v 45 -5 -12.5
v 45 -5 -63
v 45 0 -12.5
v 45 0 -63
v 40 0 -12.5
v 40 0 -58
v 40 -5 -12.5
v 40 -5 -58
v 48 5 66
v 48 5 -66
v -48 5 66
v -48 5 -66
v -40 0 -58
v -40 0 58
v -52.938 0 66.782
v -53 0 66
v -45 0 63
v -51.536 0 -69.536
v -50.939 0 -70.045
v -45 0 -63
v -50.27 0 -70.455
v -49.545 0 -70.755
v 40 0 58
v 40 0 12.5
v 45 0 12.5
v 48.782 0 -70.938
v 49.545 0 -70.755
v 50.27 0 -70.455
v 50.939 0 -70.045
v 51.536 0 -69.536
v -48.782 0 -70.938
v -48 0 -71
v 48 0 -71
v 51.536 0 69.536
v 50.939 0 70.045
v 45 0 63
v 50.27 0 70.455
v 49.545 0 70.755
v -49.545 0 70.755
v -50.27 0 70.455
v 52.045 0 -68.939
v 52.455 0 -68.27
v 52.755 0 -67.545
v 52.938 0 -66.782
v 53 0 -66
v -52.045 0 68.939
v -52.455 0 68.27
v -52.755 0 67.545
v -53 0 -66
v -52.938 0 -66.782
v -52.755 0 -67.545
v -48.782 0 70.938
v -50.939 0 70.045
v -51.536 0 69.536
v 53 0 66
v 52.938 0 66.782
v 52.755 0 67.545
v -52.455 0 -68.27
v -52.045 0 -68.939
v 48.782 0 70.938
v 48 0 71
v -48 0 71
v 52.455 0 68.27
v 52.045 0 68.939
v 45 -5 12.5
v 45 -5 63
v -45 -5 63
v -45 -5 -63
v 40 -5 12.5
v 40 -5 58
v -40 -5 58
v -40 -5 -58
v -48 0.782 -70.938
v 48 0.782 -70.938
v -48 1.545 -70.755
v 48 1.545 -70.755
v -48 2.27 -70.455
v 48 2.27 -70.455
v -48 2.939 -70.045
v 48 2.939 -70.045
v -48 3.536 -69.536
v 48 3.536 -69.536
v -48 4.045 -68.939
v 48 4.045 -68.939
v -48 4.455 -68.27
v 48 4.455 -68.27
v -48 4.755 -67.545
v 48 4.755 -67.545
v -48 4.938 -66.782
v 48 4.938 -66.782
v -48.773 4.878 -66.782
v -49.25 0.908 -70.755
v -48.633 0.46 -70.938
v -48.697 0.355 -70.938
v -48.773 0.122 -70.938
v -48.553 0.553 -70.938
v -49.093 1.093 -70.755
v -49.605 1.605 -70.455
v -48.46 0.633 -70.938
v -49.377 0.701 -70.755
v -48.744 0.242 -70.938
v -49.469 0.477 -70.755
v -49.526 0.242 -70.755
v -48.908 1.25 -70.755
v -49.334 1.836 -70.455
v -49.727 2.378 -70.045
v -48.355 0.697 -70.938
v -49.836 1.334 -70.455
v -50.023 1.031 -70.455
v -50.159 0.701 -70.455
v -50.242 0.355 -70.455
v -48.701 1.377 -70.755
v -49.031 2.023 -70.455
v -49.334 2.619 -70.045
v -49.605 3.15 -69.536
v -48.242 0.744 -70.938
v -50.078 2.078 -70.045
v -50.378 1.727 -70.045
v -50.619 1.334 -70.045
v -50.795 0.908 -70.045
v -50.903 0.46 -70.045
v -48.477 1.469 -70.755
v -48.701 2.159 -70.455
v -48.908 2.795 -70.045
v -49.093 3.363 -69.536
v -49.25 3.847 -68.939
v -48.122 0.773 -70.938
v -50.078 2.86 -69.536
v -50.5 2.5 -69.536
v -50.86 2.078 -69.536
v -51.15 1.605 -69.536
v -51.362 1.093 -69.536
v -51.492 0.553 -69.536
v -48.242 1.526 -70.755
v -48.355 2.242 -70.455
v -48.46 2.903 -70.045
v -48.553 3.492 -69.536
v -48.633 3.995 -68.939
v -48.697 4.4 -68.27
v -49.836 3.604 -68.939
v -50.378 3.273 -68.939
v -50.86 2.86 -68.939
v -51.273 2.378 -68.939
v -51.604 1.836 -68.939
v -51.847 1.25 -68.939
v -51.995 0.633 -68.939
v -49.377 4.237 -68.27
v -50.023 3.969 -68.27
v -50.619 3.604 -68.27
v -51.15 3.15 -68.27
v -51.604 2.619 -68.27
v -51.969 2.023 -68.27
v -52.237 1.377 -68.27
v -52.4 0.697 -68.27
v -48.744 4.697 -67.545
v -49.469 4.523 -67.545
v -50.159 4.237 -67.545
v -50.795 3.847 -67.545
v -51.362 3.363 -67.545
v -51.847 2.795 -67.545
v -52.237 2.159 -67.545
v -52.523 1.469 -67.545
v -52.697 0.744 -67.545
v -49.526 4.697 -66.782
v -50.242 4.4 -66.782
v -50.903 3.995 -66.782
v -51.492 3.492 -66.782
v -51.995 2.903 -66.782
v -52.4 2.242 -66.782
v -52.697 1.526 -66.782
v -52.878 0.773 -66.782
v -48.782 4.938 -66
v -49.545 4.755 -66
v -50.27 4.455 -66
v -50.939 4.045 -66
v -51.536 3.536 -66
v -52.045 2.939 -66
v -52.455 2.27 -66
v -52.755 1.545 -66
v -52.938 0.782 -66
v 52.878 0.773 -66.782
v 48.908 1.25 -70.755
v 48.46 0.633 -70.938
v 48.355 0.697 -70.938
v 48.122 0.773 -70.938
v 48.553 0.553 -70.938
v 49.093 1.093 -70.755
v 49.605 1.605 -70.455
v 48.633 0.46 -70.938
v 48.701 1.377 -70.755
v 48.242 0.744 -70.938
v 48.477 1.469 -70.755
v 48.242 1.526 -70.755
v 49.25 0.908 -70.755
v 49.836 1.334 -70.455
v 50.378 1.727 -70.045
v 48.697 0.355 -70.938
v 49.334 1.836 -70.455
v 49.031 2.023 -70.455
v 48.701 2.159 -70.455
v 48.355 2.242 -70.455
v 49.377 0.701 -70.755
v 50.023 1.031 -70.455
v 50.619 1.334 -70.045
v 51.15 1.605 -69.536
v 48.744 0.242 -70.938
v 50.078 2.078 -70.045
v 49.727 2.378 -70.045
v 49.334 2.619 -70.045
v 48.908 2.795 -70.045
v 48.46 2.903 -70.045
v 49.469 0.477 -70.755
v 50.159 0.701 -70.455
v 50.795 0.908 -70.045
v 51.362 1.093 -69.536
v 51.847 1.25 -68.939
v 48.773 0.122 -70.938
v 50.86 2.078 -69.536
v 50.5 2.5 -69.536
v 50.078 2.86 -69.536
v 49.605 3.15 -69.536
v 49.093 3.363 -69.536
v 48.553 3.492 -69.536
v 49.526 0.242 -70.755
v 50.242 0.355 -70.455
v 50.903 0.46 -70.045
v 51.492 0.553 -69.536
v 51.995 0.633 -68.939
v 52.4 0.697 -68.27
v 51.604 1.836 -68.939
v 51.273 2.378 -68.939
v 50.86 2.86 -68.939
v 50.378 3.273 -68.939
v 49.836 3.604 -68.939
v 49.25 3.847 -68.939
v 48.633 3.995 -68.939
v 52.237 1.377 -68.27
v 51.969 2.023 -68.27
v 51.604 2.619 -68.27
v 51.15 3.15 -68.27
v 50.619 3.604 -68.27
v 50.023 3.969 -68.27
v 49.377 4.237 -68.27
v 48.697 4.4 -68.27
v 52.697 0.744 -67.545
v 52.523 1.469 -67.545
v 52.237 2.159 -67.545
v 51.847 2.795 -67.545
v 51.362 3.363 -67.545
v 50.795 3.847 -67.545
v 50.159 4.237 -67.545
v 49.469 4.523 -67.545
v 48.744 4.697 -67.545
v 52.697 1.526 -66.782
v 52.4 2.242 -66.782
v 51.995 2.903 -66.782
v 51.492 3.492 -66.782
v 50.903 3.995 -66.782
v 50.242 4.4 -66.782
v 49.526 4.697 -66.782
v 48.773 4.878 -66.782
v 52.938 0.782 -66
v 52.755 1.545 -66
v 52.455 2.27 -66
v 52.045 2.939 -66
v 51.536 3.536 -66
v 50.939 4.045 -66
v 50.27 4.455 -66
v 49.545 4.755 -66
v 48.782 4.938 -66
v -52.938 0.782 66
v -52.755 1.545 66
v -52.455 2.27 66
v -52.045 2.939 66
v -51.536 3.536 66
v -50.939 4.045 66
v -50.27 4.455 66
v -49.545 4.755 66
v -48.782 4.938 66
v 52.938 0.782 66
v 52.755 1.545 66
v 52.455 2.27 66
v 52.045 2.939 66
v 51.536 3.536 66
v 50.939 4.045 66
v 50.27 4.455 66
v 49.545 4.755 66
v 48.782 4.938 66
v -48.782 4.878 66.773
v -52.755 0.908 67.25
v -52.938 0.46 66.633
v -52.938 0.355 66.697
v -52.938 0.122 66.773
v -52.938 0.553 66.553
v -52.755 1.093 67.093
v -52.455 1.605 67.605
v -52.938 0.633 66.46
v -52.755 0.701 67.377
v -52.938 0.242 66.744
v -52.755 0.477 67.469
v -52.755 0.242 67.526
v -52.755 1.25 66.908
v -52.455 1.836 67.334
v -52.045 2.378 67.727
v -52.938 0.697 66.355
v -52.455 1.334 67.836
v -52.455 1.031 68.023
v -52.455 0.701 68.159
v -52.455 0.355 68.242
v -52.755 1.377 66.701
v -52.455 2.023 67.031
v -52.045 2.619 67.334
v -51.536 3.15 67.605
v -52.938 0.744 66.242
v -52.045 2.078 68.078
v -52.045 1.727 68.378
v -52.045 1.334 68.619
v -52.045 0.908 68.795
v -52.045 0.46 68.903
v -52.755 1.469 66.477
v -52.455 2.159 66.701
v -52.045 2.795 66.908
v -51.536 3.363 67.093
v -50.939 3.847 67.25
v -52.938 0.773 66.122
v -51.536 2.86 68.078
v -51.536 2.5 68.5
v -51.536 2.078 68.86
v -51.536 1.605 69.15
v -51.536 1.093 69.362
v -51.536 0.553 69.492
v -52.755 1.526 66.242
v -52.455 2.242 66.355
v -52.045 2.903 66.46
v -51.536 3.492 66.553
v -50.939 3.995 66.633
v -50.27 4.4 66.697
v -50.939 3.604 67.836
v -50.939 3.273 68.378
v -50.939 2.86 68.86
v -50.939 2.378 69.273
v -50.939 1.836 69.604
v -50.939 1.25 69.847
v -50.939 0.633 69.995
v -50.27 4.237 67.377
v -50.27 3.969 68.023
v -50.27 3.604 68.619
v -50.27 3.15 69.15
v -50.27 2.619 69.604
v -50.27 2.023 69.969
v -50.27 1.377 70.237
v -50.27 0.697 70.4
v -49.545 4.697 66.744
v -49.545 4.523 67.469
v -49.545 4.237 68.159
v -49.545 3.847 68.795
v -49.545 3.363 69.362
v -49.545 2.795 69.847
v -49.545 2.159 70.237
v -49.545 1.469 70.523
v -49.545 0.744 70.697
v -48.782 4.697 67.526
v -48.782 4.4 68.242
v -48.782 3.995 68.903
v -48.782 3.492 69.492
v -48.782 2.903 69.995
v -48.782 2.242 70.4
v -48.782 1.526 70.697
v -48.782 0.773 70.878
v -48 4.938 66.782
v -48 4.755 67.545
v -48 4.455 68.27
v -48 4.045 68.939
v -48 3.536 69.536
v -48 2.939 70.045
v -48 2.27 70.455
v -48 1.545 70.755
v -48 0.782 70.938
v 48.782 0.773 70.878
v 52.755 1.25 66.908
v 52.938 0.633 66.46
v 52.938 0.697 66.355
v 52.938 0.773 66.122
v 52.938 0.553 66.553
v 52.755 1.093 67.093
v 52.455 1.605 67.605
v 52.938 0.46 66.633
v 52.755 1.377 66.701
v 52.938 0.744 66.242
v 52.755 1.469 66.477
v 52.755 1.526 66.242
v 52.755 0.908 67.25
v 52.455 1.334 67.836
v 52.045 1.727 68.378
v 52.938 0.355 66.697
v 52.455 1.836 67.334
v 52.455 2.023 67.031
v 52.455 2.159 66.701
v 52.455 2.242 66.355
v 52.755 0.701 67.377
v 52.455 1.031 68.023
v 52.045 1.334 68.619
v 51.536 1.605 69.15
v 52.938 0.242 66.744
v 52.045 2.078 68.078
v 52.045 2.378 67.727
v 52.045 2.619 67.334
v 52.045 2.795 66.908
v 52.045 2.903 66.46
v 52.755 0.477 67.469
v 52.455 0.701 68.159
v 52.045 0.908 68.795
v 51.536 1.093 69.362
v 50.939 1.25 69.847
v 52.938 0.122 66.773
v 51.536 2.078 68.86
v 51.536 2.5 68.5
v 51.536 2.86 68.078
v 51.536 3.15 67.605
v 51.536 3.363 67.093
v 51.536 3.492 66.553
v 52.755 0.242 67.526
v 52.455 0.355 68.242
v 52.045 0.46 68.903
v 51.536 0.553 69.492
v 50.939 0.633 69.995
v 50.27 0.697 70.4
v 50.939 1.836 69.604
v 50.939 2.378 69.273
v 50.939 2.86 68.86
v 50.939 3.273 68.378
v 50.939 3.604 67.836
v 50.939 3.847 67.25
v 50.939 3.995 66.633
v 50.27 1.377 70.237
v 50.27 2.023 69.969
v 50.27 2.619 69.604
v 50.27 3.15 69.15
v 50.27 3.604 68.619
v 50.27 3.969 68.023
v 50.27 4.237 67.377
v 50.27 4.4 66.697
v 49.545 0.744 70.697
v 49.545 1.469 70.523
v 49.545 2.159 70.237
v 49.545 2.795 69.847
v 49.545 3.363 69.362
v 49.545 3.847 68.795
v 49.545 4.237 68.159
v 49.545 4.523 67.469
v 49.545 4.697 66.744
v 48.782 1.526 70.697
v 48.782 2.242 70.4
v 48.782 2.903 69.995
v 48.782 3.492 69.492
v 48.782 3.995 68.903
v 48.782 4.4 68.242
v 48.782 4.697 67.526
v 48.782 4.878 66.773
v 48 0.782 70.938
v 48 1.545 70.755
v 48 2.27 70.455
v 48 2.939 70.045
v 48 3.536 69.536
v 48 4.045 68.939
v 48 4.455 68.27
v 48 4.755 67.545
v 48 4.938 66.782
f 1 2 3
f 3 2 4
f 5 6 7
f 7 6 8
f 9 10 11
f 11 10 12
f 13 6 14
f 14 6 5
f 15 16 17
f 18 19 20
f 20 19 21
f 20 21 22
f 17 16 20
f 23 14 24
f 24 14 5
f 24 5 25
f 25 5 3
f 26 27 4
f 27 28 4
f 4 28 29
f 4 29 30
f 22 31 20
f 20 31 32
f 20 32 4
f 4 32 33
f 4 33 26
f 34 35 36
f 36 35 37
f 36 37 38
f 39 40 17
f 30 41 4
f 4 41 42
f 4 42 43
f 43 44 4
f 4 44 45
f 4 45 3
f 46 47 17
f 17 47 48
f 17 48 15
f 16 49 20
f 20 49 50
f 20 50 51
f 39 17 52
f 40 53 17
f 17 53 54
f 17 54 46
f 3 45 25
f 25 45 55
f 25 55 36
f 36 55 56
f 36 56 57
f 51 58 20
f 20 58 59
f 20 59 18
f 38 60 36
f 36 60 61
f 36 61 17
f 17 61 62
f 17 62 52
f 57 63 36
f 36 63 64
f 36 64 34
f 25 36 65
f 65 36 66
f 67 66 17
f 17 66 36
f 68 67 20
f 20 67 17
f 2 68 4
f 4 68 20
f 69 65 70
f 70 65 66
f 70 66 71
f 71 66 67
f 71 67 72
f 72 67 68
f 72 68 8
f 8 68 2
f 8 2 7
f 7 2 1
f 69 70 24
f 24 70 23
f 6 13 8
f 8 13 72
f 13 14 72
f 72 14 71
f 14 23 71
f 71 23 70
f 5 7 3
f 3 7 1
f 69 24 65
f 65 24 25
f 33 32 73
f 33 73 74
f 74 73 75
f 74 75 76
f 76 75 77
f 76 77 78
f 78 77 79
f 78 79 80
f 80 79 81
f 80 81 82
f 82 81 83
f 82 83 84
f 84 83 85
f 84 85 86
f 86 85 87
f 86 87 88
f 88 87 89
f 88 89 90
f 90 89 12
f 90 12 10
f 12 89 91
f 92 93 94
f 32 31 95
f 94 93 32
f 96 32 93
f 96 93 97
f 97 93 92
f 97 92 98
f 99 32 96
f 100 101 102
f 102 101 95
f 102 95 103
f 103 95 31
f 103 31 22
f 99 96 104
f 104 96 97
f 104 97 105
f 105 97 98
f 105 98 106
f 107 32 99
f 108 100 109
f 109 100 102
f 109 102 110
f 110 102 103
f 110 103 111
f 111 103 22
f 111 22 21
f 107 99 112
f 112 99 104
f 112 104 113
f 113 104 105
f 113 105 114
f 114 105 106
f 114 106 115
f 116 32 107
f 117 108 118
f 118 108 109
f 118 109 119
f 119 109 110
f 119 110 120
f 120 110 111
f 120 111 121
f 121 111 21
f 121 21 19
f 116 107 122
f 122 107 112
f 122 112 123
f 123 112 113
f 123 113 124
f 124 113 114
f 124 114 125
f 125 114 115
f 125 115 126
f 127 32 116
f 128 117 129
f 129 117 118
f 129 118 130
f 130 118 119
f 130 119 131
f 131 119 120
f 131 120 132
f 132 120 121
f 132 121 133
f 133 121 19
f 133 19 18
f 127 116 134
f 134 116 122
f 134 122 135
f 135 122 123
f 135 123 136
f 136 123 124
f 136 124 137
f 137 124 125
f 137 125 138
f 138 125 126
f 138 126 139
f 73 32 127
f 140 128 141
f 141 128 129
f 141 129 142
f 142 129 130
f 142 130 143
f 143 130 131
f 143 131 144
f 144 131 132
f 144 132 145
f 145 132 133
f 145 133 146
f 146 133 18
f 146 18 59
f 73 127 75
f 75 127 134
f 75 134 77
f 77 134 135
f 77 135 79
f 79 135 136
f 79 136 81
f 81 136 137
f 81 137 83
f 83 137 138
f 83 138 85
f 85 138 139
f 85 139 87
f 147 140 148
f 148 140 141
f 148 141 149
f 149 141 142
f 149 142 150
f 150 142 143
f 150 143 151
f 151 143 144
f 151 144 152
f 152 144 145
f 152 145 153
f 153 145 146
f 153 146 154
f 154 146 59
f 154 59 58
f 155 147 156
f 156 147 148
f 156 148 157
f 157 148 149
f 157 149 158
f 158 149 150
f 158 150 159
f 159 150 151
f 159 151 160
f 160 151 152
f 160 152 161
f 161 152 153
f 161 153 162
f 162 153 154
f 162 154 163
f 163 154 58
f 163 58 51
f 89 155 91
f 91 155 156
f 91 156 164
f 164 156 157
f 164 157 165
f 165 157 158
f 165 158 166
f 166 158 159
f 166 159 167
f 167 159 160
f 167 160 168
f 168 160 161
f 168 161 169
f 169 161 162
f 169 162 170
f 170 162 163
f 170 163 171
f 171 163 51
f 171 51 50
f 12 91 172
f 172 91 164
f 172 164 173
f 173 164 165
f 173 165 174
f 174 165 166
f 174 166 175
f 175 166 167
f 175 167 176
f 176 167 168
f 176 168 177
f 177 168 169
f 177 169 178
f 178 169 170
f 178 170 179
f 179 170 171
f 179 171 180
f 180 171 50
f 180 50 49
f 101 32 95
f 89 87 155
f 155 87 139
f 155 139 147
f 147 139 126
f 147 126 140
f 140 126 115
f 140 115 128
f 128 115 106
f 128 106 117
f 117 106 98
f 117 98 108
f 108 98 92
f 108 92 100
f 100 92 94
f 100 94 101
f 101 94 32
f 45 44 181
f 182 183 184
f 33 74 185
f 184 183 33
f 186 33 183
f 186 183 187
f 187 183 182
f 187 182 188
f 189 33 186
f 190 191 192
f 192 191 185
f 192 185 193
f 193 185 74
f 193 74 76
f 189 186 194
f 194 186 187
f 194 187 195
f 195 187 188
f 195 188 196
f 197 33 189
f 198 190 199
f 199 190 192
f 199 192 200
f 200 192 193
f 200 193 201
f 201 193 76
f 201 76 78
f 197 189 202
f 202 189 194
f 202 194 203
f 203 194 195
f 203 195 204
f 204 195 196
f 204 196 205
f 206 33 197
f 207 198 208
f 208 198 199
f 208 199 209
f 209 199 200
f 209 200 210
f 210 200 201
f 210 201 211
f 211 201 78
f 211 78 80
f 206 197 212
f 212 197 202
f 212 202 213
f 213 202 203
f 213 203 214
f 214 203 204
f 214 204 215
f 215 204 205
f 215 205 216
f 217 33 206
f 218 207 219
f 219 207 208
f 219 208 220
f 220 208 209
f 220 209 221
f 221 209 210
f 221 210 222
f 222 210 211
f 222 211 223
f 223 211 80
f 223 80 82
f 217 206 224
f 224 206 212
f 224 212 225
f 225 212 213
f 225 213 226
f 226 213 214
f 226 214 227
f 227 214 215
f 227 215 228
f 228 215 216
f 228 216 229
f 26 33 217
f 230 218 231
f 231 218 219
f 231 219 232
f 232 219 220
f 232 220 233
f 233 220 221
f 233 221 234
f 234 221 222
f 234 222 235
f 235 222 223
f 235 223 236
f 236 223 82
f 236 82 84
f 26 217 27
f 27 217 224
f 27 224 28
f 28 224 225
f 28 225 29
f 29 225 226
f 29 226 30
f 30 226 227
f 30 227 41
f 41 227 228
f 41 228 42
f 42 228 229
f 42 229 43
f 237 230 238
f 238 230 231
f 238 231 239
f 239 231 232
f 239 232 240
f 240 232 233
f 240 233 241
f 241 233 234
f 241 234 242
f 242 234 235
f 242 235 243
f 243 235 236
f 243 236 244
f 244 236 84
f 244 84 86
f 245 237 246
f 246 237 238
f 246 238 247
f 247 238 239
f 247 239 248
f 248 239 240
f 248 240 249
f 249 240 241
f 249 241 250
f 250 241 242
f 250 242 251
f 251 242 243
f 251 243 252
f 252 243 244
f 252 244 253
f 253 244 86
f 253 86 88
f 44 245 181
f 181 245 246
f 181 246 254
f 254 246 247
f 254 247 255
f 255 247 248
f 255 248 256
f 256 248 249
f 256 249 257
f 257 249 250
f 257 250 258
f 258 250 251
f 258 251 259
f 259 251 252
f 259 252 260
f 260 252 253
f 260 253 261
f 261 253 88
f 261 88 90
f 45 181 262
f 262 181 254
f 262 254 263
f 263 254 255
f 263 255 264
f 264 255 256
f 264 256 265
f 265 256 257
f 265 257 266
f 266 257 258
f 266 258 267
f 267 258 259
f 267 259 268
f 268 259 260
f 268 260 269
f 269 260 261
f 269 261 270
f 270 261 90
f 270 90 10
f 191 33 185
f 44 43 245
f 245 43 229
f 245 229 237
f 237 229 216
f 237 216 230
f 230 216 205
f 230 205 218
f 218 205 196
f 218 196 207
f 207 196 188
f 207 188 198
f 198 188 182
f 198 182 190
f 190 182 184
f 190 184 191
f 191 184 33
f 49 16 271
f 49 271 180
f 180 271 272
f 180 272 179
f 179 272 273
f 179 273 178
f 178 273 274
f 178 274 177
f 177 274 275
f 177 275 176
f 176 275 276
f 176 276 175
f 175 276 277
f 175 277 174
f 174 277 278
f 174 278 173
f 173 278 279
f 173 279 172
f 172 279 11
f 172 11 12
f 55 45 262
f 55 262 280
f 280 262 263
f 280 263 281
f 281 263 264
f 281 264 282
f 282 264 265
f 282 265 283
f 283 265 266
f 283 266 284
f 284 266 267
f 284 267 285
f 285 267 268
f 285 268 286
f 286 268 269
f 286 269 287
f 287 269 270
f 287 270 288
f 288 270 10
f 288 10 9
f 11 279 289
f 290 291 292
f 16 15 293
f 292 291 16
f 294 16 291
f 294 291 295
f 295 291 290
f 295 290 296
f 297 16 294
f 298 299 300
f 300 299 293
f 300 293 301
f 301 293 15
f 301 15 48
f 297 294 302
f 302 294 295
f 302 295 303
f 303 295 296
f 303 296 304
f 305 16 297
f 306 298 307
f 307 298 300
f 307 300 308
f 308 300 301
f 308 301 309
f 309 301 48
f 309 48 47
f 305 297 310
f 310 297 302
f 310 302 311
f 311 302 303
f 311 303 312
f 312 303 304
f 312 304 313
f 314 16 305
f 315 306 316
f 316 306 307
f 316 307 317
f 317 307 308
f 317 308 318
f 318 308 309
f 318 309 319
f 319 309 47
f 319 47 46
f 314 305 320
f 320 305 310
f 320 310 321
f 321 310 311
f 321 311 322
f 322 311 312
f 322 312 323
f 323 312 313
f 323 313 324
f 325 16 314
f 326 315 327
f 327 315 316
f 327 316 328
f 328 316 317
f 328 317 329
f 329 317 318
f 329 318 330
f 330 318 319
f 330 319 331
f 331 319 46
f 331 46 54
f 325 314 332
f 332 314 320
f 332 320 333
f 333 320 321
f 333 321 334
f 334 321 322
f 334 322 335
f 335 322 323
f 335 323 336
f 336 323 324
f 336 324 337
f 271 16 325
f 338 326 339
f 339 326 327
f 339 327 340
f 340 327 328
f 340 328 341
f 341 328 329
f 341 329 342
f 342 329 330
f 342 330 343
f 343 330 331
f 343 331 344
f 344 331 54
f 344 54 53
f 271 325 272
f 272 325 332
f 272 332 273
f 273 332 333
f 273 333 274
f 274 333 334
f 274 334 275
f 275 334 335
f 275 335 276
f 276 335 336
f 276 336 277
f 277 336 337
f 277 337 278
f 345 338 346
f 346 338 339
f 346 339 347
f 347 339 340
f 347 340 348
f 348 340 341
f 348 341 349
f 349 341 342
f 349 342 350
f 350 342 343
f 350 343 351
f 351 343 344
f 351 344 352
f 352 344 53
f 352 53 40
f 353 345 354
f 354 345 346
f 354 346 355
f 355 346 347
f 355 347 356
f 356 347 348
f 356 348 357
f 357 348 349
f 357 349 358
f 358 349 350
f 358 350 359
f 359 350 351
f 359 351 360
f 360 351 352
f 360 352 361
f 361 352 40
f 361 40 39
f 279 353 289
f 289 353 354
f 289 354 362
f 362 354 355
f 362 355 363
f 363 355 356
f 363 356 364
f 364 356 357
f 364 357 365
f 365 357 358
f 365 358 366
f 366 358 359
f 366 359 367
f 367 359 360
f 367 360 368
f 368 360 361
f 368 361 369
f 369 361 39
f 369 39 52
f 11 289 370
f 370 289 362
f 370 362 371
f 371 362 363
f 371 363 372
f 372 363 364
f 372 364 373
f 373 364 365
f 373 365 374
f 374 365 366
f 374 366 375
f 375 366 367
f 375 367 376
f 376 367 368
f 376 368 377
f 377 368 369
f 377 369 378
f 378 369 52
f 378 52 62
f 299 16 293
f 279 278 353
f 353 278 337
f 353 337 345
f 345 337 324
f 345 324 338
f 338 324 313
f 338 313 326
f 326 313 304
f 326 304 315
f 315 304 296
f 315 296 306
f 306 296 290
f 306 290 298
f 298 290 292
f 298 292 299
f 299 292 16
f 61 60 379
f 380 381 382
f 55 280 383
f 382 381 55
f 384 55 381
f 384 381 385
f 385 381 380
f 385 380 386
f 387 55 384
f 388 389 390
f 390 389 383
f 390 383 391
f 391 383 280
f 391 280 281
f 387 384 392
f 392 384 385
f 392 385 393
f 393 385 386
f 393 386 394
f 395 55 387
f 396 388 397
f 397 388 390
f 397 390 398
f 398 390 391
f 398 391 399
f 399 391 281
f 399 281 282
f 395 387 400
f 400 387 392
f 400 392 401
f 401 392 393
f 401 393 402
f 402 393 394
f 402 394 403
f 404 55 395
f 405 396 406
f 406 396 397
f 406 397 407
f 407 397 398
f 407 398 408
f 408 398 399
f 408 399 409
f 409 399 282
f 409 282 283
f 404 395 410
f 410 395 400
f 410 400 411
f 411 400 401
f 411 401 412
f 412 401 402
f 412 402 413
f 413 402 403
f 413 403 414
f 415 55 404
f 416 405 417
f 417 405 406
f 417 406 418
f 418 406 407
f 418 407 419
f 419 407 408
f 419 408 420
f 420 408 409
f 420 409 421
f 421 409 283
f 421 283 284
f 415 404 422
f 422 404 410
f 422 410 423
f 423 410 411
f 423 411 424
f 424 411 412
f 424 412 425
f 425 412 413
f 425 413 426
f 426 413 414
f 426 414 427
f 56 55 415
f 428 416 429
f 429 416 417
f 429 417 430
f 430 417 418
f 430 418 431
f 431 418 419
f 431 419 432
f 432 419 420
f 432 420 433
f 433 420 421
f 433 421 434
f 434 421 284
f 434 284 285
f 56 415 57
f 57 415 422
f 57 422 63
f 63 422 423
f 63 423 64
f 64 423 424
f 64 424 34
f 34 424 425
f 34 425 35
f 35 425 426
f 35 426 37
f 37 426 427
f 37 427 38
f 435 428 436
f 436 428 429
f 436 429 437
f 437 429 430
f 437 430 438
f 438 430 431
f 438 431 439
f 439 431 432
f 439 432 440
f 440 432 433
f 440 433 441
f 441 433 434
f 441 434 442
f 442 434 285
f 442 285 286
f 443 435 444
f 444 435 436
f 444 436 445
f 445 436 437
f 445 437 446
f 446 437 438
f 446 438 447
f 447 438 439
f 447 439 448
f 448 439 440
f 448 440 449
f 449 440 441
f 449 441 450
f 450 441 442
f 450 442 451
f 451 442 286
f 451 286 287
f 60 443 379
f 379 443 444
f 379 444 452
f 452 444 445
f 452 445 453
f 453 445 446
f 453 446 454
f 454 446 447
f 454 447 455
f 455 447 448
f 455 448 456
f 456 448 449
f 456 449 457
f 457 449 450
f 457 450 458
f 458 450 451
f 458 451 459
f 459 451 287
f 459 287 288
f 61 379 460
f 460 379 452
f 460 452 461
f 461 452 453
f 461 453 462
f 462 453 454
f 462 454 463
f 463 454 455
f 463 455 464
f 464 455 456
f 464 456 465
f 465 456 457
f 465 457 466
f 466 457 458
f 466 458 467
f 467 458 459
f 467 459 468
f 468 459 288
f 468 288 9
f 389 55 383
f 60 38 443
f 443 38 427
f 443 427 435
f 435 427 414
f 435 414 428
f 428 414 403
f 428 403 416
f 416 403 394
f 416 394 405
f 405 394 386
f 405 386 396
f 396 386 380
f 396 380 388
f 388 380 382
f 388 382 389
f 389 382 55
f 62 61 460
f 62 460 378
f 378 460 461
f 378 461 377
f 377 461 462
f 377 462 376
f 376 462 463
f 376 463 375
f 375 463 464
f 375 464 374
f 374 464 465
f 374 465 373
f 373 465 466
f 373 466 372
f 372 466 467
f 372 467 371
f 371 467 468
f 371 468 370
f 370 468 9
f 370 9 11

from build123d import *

# Parameters (mm, degrees)
SKETCH1_W           = 106
SKETCH1_H           = 142
BOSS_EXTRUDE1_DEPTH = 5
SKETCH2_W           = 90
SKETCH2_H           = 126
BOSS_EXTRUDE2_DEPTH = 5
SKETCH3_W           = 80
SKETCH3_H           = 116
CUT_EXTRUDE1_DEPTH  = 5
SKETCH4_W           = 25
SKETCH4_H           = 5
CUT_EXTRUDE2_DEPTH  = 5
FILLET1_R           = 5


with BuildPart() as part:
    # Sketch1 → Boss-Extrude1 (new body)
    with BuildSketch(Plane(origin=(0, 0, 0), x_dir=(1, 0, 0), z_dir=(0, 1, 0))):
        Rectangle(SKETCH1_W, SKETCH1_H)
    extrude(amount=BOSS_EXTRUDE1_DEPTH)

    # Sketch2 → Boss-Extrude2 (add)
    with BuildSketch(Plane.XZ):
        Rectangle(SKETCH2_W, SKETCH2_H)
    extrude(amount=BOSS_EXTRUDE2_DEPTH)

    # Sketch3 → Cut-Extrude1 (cut)
    with BuildSketch(Plane.XZ.offset(5)):
        Rectangle(SKETCH3_W, SKETCH3_H)
    extrude(amount=-CUT_EXTRUDE1_DEPTH, mode=Mode.SUBTRACT)

    # Sketch4 → Cut-Extrude2 (cut)
    with BuildSketch(Plane(origin=(45, 0, 0), x_dir=(0, 0, -1), z_dir=(1, 0, 0))):
        with Locations((0, -2.5)):
            Rectangle(SKETCH4_W, SKETCH4_H)
    extrude(amount=-CUT_EXTRUDE2_DEPTH, mode=Mode.SUBTRACT)

    # Fillet1
    fillet1_edges = [part.edges().sort_by_distance(p)[0] for p in [
        (-53, 5, 0),
        (0, 5, 71),
        (53, 5, 0),
        (53, 2.5, 71),
        (-53, 2.5, 71),
        (-53, 2.5, -71),
        (53, 2.5, -71),
        (0, 5, -71),
    ]]
    fillet(fillet1_edges, radius=FILLET1_R - 0.0001)  # a hair under: the kernel refuses the full size


solid = part.part
